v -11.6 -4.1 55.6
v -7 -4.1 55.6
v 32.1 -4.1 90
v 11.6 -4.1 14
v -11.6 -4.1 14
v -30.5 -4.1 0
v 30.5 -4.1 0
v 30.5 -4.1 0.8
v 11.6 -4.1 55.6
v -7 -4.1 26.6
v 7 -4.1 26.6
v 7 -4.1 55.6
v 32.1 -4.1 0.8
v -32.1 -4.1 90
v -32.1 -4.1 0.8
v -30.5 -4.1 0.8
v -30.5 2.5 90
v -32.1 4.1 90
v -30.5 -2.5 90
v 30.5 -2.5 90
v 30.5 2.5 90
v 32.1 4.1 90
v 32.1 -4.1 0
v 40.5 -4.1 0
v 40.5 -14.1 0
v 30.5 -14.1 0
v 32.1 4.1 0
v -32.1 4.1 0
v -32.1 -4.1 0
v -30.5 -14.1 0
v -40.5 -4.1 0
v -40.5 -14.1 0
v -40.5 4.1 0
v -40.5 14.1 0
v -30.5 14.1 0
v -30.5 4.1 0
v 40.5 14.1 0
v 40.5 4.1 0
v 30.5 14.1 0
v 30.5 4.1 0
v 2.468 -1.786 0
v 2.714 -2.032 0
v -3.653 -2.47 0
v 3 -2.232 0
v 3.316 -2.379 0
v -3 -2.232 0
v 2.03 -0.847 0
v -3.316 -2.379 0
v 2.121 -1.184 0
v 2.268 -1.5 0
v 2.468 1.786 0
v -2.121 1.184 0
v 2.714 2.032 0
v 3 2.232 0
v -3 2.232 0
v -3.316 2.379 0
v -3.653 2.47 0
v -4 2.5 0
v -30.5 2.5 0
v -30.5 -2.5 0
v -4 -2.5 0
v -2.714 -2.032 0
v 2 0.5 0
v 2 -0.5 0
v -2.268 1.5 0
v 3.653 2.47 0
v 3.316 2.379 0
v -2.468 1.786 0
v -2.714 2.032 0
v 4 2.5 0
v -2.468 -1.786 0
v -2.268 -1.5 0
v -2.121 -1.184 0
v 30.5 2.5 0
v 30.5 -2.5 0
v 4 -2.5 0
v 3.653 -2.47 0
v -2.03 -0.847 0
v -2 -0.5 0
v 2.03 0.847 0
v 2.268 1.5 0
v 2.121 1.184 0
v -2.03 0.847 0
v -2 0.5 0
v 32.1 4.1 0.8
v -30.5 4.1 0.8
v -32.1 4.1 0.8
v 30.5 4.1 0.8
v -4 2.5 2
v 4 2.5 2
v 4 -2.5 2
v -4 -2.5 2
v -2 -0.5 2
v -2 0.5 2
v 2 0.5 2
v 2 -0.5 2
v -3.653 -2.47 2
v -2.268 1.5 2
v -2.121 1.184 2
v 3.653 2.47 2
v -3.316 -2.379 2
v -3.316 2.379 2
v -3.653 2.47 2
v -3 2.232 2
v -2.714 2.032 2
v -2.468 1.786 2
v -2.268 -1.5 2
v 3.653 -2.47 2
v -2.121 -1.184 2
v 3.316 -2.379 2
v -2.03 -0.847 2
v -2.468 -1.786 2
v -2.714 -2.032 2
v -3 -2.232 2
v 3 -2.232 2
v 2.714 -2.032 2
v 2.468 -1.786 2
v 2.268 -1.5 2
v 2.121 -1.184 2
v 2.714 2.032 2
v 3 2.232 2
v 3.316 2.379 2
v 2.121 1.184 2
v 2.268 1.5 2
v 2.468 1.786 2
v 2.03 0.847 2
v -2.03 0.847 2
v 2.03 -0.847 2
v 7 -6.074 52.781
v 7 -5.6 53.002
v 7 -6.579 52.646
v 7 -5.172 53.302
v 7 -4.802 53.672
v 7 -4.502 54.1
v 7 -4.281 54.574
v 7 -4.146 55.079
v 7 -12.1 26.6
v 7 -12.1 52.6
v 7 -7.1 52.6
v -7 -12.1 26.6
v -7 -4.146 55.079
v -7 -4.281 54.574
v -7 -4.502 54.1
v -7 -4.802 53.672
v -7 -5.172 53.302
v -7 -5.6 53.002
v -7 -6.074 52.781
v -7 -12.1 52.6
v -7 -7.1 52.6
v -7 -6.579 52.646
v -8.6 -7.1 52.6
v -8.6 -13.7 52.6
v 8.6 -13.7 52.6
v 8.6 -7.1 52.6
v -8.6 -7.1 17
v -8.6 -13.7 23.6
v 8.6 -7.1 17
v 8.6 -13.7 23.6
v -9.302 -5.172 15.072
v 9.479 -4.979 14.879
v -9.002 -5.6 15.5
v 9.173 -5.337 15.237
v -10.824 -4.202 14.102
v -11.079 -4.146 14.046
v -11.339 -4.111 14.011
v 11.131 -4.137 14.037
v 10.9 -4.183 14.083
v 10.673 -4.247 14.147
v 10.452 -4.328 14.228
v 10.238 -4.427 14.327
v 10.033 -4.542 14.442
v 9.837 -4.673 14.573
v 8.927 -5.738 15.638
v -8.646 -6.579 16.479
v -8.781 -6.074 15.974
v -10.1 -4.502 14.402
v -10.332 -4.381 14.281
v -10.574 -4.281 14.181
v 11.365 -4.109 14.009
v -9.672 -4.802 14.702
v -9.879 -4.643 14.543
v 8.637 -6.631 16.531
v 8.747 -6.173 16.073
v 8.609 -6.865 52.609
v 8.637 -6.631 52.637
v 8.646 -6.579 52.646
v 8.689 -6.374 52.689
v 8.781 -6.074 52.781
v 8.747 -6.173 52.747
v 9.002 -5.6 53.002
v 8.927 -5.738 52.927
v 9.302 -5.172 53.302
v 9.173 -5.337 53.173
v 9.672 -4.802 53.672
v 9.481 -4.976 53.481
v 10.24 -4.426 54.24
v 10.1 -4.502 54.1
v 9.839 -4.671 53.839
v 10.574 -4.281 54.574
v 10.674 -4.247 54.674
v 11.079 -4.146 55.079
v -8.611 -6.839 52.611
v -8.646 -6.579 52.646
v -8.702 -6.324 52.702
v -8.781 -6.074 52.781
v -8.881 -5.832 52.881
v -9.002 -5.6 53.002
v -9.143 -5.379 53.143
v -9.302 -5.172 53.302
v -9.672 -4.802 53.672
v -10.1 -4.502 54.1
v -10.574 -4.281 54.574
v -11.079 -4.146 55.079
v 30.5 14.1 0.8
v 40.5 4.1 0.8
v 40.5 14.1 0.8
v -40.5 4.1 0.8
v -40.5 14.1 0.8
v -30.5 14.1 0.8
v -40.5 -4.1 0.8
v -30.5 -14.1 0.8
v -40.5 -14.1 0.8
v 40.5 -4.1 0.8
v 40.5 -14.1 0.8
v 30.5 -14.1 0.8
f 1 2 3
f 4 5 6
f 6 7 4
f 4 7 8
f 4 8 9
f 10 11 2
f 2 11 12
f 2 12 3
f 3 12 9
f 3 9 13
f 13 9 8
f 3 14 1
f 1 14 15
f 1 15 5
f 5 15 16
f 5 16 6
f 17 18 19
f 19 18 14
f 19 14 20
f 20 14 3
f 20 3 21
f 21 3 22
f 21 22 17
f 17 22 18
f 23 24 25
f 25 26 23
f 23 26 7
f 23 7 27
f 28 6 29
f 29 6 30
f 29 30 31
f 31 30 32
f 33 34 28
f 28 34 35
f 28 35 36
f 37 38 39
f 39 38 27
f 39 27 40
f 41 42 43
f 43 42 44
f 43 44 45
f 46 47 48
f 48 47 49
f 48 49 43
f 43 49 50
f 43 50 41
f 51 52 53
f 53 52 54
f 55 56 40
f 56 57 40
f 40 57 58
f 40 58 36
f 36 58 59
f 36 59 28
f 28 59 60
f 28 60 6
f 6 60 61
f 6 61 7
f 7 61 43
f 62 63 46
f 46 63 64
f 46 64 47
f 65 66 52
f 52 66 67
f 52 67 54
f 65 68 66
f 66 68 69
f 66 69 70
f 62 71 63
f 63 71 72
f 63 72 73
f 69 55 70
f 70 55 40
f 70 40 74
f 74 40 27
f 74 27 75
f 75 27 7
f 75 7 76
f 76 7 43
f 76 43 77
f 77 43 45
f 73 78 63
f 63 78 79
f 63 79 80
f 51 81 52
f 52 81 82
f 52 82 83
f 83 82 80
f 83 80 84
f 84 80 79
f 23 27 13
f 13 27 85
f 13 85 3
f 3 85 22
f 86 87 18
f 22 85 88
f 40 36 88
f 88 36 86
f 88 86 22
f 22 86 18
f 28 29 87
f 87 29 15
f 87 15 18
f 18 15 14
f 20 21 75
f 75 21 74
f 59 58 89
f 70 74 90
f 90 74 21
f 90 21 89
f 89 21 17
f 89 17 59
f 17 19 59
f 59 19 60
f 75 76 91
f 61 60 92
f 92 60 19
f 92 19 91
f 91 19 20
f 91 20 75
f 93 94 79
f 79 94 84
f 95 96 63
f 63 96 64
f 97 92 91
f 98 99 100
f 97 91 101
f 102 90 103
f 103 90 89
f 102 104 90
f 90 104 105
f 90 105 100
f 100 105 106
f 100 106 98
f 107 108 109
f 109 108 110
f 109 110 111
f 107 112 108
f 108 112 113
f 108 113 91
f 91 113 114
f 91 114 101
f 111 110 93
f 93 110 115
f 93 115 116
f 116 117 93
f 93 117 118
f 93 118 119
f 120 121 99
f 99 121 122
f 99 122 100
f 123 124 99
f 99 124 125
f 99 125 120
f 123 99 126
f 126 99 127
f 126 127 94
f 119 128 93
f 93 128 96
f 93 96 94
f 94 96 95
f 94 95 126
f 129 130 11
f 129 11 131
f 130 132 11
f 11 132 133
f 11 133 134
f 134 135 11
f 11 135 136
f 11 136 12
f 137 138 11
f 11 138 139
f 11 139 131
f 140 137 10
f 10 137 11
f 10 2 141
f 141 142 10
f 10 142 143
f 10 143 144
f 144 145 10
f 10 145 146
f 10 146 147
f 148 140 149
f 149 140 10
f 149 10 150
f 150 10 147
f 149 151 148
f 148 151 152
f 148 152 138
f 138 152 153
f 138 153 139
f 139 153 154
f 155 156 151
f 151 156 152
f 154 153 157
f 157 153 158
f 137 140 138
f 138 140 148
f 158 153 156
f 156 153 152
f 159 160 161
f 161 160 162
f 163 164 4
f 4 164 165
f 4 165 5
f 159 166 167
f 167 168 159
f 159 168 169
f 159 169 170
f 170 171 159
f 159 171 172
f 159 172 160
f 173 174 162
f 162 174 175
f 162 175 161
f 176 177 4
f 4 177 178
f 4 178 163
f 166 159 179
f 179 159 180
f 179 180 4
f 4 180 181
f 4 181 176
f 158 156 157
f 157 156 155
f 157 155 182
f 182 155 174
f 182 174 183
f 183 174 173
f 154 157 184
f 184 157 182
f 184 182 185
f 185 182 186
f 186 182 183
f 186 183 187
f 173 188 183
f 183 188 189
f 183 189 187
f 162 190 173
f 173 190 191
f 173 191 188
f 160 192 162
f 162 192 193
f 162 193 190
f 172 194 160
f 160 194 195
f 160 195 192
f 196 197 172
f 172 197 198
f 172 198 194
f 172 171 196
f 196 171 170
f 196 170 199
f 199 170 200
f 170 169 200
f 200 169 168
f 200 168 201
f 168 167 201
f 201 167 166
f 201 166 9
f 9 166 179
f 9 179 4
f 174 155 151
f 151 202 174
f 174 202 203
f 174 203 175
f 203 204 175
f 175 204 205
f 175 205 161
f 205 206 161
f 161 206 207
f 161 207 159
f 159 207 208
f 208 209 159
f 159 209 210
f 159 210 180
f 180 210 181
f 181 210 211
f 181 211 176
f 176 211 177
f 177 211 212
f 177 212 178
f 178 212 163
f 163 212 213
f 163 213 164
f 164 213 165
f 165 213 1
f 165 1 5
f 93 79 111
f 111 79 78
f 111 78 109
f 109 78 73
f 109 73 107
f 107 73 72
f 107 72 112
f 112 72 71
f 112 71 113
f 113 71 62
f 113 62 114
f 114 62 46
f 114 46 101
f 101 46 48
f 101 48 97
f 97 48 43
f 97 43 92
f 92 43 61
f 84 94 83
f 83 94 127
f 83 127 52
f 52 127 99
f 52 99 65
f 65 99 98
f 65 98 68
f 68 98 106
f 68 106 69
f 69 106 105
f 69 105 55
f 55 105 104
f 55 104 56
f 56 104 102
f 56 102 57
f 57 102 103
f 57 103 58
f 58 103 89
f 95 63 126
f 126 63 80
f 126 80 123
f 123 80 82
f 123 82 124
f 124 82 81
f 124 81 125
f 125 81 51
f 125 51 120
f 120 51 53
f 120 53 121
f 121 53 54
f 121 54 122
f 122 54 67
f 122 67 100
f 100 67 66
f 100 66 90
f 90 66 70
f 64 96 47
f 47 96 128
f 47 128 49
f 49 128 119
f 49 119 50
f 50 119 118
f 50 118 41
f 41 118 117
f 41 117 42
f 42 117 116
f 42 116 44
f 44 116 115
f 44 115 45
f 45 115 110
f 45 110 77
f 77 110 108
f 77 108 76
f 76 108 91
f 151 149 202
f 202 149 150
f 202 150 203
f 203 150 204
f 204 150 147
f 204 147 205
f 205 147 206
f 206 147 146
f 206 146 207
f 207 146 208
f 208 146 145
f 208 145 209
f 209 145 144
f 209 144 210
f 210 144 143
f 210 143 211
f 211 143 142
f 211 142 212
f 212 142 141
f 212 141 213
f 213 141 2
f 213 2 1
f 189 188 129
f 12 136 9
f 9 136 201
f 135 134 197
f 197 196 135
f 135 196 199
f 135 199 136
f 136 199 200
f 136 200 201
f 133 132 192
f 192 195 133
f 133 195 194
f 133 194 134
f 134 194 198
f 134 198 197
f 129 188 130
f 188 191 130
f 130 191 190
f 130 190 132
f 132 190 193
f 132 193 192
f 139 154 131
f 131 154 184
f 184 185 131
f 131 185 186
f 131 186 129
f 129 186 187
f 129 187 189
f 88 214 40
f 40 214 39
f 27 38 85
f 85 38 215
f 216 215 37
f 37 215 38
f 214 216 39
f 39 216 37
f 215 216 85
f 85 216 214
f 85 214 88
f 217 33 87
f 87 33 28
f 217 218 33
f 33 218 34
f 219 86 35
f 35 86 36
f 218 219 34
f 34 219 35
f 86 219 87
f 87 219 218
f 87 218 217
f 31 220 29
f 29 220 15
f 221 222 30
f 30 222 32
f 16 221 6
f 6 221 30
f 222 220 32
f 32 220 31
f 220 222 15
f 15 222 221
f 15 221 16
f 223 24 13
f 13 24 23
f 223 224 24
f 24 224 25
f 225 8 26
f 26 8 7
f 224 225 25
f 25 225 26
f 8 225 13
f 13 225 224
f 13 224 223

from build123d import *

# Parameters (mm, degrees)
SKETCH1_W           = 64.2
SKETCH1_H           = 8.2
SKETCH1_W_2         = 61
SKETCH1_H_2         = 5
BOSS_EXTRUDE1_DEPTH = 90
SKETCH2_W           = 4
SKETCH2_H           = 8.2
BOSS_EXTRUDE2_DEPTH = 2
BOSS_EXTRUDE4_DEPTH = 8
SKETCH5_W           = 17.2
SKETCH5_H           = 27.6
BOSS_EXTRUDE5_DEPTH = 1.6
CHAMFER3_SIZE       = 11
FILLET1_R           = 3
FILLET2_R           = 2
FILLET3_R           = 3
SKETCH3_W           = 10
SKETCH3_H           = 10
BOSS_EXTRUDE3_DEPTH = 0.8


with BuildPart() as part:
    # Sketch1 → Boss-Extrude1 (new body)
    with BuildSketch(Plane.XY):
        Rectangle(SKETCH1_W, SKETCH1_H)
        Rectangle(SKETCH1_W_2, SKETCH1_H_2, mode=Mode.SUBTRACT)
    extrude(amount=BOSS_EXTRUDE1_DEPTH)

    # Sketch2 → Boss-Extrude2 (add)
    with BuildSketch(Plane(origin=(0, 0, 0), x_dir=(-1, 0, 0), z_dir=(0, 0, -1))):
        Rectangle(SKETCH2_W, SKETCH2_H)
    extrude(amount=-BOSS_EXTRUDE2_DEPTH)

    # Sketch4 → Boss-Extrude4 (add)
    with BuildSketch(Plane.XZ.offset(4.1)):
        Polygon((-7, 52.6), (-7, 26.6), (7, 26.6), (7, 52.6), (8.6, 52.6), (8.6, 25), (-8.6, 25), (-8.6, 52.6), align=None)
    extrude(amount=BOSS_EXTRUDE4_DEPTH)

    # Sketch5 → Boss-Extrude5 (add)
    with BuildSketch(Plane.XZ.offset(12.1)):
        with Locations((0, 38.8)):
            Rectangle(SKETCH5_W, SKETCH5_H)
    extrude(amount=BOSS_EXTRUDE5_DEPTH)

    # Chamfer3
    # the kernel refuses this chamfer: 11 mm, written as the material it adds along each edge
    with BuildSketch(Plane(origin=(8.6, -4.1, 25), x_dir=(0, 0.027495876610586372, -0.9996219169112968), z_dir=(-1, 0, 0))) as chamfer3_piece_1_section:
        Polygon((CHAMFER3_SIZE * 0.999621916911, CHAMFER3_SIZE * 0.0274958766106), (-CHAMFER3_SIZE * 0.0274958766106, CHAMFER3_SIZE * 0.999621916911), (0, 0), align=None)
    chamfer3_piece_1 = extrude(amount=17.2, mode=Mode.PRIVATE)
    chamfer3_piece_1 = split(chamfer3_piece_1, bisect_by=Plane(origin=(0, -13.7, 21.279882352), z_dir=(0, 1, 0)), keep=Keep.TOP, mode=Mode.PRIVATE)
    add(chamfer3_piece_1)

    # Fillet1
    fillet1_edges = [part.edges().sort_by_distance(p)[0] for p in [
        (-8.6, -4.1, 33.3),
        (8.6, -4.1, 33.3),
    ]]
    fillet(fillet1_edges, radius=FILLET1_R)

    # Fillet2
    fillet2_edges = [part.edges().sort_by_distance(p)[0] for p in [
        (2, -2.5, 1),
        (-2, -2.5, 1),
        (-2, 2.5, 1),
        (2, 2.5, 1),
    ]]
    fillet(fillet2_edges, radius=FILLET2_R)

    # Fillet3
    fillet3_edges = [part.edges().sort_by_distance(p)[0] for p in [
        (-9.3, -4.1, 52.6),
        (9.3, -4.1, 52.6),
    ]]
    fillet(fillet3_edges, radius=FILLET3_R)

    # Sketch3 → Boss-Extrude3 (add)
    with BuildSketch(Plane(origin=(0, 0, 0), x_dir=(-1, 0, 0), z_dir=(0, 0, -1))):
        with Locations((-35.5, 9.1)):
            Rectangle(SKETCH3_W, SKETCH3_H)
        with Locations((35.5, 9.1)):
            Rectangle(SKETCH3_W, SKETCH3_H)
        with Locations((35.5, -9.1)):
            Rectangle(SKETCH3_W, SKETCH3_H)
        with Locations((-35.5, -9.1)):
            Rectangle(SKETCH3_W, SKETCH3_H)
    extrude(amount=-BOSS_EXTRUDE3_DEPTH)


solid = part.part
